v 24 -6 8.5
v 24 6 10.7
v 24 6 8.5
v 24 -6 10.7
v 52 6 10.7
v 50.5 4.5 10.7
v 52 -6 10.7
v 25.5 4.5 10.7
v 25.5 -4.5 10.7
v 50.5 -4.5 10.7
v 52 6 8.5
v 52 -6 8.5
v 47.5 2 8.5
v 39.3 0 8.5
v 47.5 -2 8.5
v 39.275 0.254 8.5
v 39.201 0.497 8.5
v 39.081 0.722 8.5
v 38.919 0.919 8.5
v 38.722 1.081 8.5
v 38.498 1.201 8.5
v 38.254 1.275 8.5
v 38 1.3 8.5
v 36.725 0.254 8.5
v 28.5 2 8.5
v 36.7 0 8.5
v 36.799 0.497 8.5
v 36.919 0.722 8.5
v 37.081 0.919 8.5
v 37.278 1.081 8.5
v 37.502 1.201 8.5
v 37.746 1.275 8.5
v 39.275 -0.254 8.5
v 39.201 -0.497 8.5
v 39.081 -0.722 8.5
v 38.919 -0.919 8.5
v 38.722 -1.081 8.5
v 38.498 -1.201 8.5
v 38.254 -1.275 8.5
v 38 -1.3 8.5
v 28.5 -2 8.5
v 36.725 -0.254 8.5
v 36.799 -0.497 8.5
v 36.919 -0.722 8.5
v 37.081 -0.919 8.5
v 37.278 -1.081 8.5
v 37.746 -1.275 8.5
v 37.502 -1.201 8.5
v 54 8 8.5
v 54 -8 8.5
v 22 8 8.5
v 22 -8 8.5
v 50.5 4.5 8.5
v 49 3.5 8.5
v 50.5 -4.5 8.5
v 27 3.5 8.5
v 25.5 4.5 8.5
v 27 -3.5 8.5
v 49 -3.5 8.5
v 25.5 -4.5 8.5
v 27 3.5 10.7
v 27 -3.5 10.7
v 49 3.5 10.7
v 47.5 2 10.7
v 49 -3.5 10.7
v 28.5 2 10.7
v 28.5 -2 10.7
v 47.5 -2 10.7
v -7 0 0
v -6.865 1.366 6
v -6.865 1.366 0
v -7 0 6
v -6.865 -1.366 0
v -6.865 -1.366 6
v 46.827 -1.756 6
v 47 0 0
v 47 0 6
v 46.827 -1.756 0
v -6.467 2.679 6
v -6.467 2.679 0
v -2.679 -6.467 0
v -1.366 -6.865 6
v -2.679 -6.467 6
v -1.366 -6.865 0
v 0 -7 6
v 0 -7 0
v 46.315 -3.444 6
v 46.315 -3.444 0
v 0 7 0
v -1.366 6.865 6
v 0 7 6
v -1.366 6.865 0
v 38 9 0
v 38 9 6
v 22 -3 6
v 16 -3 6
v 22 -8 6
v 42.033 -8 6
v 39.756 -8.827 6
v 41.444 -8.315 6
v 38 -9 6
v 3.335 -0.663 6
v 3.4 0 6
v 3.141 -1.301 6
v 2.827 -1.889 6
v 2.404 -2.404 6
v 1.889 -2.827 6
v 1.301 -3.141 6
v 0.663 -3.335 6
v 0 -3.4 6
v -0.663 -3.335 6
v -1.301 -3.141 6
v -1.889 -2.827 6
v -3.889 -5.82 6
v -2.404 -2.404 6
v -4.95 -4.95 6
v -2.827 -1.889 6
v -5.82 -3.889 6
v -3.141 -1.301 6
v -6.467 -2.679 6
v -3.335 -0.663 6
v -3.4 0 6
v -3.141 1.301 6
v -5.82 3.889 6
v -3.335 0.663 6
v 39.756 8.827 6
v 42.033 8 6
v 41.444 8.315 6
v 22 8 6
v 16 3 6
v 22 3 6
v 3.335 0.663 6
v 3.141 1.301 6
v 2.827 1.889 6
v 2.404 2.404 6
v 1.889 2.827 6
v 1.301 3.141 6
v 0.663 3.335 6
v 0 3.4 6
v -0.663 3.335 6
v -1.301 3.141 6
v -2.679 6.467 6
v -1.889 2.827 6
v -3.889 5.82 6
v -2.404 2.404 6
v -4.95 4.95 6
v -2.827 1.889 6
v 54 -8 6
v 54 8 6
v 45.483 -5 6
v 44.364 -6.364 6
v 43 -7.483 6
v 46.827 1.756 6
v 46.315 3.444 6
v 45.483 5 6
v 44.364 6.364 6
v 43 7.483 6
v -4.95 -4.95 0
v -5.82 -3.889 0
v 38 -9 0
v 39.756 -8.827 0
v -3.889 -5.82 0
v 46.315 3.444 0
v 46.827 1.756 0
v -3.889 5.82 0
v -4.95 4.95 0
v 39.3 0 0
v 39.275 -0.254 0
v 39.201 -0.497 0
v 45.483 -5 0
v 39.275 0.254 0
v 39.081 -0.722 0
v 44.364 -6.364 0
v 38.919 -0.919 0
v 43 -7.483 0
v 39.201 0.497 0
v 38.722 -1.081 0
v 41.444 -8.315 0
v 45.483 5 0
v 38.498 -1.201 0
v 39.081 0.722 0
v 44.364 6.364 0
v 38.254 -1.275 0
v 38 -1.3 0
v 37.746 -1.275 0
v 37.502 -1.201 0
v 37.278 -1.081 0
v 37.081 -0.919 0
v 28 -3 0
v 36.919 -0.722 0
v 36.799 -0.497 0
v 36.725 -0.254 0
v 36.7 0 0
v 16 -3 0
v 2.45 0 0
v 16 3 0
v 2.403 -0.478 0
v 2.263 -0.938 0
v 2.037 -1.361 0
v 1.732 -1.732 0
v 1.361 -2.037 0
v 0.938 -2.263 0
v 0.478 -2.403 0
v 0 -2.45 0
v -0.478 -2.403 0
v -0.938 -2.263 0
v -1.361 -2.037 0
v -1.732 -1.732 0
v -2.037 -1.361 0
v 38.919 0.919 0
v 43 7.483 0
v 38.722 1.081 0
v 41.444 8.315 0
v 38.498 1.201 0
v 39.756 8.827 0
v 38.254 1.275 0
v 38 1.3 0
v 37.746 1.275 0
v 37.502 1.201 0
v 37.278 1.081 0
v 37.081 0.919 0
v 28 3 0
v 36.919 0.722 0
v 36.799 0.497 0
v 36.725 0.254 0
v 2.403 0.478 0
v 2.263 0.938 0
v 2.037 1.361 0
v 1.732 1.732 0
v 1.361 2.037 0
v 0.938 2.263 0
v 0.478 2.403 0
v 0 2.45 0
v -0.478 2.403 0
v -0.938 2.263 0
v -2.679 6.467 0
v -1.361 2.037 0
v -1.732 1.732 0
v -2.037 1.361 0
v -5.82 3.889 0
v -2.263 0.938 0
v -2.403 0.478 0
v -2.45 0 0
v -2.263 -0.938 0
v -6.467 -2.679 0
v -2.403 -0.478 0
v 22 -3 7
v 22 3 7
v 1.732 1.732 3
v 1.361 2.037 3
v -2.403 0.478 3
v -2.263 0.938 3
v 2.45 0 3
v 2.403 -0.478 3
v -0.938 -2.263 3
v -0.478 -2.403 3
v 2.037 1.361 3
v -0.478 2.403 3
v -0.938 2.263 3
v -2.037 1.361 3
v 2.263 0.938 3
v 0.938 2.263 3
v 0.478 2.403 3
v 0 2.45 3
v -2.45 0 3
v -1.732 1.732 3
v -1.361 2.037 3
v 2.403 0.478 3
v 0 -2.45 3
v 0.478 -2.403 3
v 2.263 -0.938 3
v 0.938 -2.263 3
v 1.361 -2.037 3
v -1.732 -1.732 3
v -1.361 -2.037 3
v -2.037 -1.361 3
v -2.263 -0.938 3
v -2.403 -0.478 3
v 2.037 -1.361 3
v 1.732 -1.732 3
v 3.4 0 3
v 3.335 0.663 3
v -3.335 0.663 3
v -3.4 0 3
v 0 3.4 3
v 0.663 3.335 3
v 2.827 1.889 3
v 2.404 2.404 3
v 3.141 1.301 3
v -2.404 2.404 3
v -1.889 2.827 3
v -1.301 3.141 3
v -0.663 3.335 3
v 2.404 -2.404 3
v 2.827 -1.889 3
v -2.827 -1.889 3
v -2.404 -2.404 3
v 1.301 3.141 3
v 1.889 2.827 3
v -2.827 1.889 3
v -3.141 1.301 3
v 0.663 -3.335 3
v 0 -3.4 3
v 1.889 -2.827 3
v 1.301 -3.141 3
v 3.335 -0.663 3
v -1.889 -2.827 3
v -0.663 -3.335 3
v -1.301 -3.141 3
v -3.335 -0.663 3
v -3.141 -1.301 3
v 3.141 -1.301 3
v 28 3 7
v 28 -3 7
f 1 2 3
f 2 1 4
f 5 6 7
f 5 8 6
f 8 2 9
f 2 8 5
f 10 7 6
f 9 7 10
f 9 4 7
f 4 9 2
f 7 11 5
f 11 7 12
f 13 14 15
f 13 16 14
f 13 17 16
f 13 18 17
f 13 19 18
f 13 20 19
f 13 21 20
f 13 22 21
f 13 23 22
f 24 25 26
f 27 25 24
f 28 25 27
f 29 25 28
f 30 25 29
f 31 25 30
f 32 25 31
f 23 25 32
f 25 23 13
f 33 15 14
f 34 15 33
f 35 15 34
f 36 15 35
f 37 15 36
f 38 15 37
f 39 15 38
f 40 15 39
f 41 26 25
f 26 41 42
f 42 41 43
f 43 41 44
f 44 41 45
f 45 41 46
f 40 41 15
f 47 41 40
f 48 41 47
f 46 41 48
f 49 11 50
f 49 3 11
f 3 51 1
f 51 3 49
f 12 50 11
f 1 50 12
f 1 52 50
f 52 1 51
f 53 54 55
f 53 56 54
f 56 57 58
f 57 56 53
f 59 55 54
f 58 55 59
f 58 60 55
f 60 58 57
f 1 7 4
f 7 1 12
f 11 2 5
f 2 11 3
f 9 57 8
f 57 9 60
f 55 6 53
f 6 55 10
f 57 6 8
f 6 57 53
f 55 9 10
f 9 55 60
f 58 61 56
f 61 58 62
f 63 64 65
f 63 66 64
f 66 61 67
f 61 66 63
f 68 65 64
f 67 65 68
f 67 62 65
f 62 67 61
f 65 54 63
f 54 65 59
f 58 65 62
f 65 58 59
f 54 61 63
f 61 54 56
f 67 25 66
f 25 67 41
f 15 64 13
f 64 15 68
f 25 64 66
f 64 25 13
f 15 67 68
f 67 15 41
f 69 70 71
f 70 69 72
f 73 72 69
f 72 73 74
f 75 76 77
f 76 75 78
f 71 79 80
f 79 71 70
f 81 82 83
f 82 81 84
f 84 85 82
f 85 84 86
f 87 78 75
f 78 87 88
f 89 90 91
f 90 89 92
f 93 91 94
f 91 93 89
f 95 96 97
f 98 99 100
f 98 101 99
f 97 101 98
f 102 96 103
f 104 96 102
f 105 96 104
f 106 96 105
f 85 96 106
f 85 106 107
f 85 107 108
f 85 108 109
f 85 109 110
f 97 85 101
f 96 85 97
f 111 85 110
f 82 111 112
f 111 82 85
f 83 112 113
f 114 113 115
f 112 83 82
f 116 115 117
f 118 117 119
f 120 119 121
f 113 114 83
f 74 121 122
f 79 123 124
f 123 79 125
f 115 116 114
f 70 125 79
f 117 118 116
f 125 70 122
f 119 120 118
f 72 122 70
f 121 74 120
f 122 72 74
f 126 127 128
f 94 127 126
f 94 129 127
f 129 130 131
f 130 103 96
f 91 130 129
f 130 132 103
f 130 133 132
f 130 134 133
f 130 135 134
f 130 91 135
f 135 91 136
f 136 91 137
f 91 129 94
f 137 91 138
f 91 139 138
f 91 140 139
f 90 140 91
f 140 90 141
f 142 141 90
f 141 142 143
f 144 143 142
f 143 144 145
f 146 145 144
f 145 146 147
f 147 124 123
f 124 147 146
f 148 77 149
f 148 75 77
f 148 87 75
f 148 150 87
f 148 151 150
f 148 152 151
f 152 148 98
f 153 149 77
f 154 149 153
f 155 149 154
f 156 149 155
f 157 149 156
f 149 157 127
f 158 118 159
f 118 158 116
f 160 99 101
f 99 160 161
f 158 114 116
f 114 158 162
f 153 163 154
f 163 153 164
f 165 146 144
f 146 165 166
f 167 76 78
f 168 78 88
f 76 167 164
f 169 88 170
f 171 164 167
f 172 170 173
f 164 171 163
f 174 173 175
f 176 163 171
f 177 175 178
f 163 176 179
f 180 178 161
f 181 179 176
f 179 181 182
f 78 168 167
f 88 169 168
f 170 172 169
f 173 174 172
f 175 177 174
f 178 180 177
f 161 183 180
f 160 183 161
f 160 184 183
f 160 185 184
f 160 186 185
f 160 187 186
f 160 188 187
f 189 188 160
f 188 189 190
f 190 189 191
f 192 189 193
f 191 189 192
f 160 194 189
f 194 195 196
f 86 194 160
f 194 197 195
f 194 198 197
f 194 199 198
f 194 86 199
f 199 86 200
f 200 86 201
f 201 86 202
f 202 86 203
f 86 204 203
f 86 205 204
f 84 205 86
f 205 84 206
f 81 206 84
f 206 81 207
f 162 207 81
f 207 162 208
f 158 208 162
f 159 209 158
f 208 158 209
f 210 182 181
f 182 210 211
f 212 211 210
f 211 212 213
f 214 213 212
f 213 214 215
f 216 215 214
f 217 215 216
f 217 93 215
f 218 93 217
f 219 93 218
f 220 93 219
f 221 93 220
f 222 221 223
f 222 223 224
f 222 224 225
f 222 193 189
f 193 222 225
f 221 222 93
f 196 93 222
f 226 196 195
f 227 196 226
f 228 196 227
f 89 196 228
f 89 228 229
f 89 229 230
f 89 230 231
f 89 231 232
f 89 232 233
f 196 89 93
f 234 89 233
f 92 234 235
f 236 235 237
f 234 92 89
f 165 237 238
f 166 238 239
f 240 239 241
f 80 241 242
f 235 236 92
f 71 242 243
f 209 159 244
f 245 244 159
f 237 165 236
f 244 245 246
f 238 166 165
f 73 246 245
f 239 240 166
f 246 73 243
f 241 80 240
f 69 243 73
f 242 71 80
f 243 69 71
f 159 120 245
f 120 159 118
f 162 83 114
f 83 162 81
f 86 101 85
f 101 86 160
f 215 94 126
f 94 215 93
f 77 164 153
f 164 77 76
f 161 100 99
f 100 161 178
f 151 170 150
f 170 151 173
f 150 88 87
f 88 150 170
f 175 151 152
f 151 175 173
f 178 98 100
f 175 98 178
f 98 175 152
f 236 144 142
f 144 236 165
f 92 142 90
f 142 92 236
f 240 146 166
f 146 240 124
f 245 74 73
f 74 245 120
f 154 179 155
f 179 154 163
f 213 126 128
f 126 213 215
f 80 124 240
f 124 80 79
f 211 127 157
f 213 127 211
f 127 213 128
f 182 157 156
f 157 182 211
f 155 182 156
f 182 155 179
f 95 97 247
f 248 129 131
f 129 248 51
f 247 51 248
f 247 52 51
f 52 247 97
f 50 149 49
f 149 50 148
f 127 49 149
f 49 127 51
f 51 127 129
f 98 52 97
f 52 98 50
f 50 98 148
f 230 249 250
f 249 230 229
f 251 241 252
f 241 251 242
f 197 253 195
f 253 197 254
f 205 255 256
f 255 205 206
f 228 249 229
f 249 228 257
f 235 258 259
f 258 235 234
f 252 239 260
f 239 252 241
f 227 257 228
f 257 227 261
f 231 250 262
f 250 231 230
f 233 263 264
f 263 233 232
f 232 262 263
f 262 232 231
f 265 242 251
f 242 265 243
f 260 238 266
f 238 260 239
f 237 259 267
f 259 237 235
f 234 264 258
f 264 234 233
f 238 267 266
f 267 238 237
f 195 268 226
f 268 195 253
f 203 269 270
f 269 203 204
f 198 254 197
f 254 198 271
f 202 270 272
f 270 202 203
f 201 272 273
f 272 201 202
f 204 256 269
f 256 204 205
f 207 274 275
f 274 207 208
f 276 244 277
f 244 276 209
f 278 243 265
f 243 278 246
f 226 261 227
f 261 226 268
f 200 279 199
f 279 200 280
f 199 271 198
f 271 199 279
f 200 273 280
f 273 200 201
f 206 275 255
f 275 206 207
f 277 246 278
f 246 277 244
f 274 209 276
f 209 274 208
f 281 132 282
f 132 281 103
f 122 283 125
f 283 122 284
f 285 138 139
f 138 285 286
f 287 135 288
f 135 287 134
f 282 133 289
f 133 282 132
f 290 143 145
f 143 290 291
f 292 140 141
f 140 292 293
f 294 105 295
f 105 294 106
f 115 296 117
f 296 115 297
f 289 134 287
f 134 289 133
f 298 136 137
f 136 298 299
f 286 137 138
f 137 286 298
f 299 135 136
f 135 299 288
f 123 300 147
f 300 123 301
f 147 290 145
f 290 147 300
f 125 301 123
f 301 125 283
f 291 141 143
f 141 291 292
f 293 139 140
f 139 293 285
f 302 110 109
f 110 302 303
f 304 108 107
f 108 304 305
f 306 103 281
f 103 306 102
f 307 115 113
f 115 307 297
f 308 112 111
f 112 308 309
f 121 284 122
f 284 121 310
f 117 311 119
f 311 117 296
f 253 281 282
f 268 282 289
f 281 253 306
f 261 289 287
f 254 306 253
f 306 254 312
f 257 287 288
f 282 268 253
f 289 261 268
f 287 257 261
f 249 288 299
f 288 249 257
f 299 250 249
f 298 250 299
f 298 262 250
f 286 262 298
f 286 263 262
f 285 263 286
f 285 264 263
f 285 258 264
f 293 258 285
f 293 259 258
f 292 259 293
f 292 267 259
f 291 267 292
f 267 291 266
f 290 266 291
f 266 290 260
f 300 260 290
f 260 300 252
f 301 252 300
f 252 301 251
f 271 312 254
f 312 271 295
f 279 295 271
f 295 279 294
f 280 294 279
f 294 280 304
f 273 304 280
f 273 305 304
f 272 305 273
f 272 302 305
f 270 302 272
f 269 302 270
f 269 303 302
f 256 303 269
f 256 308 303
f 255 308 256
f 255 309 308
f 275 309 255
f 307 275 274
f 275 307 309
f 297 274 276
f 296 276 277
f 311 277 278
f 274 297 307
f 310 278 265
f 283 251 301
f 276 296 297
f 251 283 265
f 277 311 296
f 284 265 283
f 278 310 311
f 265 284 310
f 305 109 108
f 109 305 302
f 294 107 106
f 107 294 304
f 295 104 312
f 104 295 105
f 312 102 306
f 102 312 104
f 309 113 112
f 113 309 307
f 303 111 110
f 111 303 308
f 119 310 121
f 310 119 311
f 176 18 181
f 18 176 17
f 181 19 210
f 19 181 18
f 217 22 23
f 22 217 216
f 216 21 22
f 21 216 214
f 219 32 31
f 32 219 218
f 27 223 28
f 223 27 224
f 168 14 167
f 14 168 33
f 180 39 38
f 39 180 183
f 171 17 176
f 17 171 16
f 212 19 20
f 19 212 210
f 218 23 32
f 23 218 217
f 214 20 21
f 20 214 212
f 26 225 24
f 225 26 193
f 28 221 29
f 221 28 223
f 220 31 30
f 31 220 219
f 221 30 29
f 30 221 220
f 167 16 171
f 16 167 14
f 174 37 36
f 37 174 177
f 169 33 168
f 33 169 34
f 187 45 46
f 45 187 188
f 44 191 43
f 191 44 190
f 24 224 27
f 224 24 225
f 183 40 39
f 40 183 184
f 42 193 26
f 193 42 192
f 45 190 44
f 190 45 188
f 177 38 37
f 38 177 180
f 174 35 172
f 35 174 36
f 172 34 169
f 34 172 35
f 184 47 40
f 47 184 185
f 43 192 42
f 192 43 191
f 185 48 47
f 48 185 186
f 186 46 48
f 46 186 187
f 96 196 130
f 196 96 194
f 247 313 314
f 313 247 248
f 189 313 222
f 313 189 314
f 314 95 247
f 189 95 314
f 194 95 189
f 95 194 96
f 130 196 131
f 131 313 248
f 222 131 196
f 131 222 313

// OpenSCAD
// PROJECT W.A.L.L. - HYPER-ACTUATOR Mk-1: Motorized Auto-Sealing Capping Station
// Drawing Ref: DWG-WALL-HACT-006 | Material: Anodized 6061-T6 Aluminum / Platinum-Cured Silicone
// Seals printhead orifice face during park/idle, prevents solvent evaporation,
// and routes purged waste ink via suction drain.
// Complies with ISO 2768-mK tolerances | Designed for CNC Milling & Silicone Overmolding

$fn = 32;

module auto_capping_station(
    arm_len = 38.0,
    arm_t = 6.0
) {
    difference() {
        union() {
            // Articulated Swing Arm Beam with Reinforcing Rib
            hull() {
                cylinder(d=14.0, h=arm_t);
                translate([arm_len, 0, 0]) cylinder(d=18.0, h=arm_t);
            }

            // Distal Silicone Sealing Boot Retention Tray
            translate([arm_len - 16.0, -8.0, arm_t])
                cube([32.0, 16.0, 2.5]);

            // Dual Concentric Platinum Silicone Sealing Lips
            translate([arm_len - 14.0, -6.0, arm_t + 2.5])
                difference() {
                    cube([28.0, 12.0, 2.2]);
                    translate([1.5, 1.5, -0.5]) cube([25.0, 9.0, 3.2]);
                }
            translate([arm_len - 11.0, -3.5, arm_t + 2.5])
                difference() {
                    cube([22.0, 7.0, 2.2]);
                    translate([1.5, 1.5, -0.5]) cube([19.0, 4.0, 3.2]);
                }
        }

        // 1. 9g Metal Gear Servo 21T Micro-Spline Bore & Retention Bolt
        translate([0, 0, -1]) {
            cylinder(d=4.9, h=arm_t + 2); // Spline Fit
            translate([0, 0, arm_t - 2.0]) cylinder(d=6.8, h=3.0);
        }

        // 2. Peristaltic Suction Waste Evacuation Drain Port
        translate([arm_len, 0, -1])
            cylinder(d=2.6, h=arm_t + 6.0);

        // 3. Weight-Reduction Skeletonized Cutouts
        translate([16.0, -3.0, -1]) cube([12.0, 6.0, arm_t + 2]);
    }
}

// Standalone render
color([0.92, 0.58, 0.12])
    auto_capping_station();
